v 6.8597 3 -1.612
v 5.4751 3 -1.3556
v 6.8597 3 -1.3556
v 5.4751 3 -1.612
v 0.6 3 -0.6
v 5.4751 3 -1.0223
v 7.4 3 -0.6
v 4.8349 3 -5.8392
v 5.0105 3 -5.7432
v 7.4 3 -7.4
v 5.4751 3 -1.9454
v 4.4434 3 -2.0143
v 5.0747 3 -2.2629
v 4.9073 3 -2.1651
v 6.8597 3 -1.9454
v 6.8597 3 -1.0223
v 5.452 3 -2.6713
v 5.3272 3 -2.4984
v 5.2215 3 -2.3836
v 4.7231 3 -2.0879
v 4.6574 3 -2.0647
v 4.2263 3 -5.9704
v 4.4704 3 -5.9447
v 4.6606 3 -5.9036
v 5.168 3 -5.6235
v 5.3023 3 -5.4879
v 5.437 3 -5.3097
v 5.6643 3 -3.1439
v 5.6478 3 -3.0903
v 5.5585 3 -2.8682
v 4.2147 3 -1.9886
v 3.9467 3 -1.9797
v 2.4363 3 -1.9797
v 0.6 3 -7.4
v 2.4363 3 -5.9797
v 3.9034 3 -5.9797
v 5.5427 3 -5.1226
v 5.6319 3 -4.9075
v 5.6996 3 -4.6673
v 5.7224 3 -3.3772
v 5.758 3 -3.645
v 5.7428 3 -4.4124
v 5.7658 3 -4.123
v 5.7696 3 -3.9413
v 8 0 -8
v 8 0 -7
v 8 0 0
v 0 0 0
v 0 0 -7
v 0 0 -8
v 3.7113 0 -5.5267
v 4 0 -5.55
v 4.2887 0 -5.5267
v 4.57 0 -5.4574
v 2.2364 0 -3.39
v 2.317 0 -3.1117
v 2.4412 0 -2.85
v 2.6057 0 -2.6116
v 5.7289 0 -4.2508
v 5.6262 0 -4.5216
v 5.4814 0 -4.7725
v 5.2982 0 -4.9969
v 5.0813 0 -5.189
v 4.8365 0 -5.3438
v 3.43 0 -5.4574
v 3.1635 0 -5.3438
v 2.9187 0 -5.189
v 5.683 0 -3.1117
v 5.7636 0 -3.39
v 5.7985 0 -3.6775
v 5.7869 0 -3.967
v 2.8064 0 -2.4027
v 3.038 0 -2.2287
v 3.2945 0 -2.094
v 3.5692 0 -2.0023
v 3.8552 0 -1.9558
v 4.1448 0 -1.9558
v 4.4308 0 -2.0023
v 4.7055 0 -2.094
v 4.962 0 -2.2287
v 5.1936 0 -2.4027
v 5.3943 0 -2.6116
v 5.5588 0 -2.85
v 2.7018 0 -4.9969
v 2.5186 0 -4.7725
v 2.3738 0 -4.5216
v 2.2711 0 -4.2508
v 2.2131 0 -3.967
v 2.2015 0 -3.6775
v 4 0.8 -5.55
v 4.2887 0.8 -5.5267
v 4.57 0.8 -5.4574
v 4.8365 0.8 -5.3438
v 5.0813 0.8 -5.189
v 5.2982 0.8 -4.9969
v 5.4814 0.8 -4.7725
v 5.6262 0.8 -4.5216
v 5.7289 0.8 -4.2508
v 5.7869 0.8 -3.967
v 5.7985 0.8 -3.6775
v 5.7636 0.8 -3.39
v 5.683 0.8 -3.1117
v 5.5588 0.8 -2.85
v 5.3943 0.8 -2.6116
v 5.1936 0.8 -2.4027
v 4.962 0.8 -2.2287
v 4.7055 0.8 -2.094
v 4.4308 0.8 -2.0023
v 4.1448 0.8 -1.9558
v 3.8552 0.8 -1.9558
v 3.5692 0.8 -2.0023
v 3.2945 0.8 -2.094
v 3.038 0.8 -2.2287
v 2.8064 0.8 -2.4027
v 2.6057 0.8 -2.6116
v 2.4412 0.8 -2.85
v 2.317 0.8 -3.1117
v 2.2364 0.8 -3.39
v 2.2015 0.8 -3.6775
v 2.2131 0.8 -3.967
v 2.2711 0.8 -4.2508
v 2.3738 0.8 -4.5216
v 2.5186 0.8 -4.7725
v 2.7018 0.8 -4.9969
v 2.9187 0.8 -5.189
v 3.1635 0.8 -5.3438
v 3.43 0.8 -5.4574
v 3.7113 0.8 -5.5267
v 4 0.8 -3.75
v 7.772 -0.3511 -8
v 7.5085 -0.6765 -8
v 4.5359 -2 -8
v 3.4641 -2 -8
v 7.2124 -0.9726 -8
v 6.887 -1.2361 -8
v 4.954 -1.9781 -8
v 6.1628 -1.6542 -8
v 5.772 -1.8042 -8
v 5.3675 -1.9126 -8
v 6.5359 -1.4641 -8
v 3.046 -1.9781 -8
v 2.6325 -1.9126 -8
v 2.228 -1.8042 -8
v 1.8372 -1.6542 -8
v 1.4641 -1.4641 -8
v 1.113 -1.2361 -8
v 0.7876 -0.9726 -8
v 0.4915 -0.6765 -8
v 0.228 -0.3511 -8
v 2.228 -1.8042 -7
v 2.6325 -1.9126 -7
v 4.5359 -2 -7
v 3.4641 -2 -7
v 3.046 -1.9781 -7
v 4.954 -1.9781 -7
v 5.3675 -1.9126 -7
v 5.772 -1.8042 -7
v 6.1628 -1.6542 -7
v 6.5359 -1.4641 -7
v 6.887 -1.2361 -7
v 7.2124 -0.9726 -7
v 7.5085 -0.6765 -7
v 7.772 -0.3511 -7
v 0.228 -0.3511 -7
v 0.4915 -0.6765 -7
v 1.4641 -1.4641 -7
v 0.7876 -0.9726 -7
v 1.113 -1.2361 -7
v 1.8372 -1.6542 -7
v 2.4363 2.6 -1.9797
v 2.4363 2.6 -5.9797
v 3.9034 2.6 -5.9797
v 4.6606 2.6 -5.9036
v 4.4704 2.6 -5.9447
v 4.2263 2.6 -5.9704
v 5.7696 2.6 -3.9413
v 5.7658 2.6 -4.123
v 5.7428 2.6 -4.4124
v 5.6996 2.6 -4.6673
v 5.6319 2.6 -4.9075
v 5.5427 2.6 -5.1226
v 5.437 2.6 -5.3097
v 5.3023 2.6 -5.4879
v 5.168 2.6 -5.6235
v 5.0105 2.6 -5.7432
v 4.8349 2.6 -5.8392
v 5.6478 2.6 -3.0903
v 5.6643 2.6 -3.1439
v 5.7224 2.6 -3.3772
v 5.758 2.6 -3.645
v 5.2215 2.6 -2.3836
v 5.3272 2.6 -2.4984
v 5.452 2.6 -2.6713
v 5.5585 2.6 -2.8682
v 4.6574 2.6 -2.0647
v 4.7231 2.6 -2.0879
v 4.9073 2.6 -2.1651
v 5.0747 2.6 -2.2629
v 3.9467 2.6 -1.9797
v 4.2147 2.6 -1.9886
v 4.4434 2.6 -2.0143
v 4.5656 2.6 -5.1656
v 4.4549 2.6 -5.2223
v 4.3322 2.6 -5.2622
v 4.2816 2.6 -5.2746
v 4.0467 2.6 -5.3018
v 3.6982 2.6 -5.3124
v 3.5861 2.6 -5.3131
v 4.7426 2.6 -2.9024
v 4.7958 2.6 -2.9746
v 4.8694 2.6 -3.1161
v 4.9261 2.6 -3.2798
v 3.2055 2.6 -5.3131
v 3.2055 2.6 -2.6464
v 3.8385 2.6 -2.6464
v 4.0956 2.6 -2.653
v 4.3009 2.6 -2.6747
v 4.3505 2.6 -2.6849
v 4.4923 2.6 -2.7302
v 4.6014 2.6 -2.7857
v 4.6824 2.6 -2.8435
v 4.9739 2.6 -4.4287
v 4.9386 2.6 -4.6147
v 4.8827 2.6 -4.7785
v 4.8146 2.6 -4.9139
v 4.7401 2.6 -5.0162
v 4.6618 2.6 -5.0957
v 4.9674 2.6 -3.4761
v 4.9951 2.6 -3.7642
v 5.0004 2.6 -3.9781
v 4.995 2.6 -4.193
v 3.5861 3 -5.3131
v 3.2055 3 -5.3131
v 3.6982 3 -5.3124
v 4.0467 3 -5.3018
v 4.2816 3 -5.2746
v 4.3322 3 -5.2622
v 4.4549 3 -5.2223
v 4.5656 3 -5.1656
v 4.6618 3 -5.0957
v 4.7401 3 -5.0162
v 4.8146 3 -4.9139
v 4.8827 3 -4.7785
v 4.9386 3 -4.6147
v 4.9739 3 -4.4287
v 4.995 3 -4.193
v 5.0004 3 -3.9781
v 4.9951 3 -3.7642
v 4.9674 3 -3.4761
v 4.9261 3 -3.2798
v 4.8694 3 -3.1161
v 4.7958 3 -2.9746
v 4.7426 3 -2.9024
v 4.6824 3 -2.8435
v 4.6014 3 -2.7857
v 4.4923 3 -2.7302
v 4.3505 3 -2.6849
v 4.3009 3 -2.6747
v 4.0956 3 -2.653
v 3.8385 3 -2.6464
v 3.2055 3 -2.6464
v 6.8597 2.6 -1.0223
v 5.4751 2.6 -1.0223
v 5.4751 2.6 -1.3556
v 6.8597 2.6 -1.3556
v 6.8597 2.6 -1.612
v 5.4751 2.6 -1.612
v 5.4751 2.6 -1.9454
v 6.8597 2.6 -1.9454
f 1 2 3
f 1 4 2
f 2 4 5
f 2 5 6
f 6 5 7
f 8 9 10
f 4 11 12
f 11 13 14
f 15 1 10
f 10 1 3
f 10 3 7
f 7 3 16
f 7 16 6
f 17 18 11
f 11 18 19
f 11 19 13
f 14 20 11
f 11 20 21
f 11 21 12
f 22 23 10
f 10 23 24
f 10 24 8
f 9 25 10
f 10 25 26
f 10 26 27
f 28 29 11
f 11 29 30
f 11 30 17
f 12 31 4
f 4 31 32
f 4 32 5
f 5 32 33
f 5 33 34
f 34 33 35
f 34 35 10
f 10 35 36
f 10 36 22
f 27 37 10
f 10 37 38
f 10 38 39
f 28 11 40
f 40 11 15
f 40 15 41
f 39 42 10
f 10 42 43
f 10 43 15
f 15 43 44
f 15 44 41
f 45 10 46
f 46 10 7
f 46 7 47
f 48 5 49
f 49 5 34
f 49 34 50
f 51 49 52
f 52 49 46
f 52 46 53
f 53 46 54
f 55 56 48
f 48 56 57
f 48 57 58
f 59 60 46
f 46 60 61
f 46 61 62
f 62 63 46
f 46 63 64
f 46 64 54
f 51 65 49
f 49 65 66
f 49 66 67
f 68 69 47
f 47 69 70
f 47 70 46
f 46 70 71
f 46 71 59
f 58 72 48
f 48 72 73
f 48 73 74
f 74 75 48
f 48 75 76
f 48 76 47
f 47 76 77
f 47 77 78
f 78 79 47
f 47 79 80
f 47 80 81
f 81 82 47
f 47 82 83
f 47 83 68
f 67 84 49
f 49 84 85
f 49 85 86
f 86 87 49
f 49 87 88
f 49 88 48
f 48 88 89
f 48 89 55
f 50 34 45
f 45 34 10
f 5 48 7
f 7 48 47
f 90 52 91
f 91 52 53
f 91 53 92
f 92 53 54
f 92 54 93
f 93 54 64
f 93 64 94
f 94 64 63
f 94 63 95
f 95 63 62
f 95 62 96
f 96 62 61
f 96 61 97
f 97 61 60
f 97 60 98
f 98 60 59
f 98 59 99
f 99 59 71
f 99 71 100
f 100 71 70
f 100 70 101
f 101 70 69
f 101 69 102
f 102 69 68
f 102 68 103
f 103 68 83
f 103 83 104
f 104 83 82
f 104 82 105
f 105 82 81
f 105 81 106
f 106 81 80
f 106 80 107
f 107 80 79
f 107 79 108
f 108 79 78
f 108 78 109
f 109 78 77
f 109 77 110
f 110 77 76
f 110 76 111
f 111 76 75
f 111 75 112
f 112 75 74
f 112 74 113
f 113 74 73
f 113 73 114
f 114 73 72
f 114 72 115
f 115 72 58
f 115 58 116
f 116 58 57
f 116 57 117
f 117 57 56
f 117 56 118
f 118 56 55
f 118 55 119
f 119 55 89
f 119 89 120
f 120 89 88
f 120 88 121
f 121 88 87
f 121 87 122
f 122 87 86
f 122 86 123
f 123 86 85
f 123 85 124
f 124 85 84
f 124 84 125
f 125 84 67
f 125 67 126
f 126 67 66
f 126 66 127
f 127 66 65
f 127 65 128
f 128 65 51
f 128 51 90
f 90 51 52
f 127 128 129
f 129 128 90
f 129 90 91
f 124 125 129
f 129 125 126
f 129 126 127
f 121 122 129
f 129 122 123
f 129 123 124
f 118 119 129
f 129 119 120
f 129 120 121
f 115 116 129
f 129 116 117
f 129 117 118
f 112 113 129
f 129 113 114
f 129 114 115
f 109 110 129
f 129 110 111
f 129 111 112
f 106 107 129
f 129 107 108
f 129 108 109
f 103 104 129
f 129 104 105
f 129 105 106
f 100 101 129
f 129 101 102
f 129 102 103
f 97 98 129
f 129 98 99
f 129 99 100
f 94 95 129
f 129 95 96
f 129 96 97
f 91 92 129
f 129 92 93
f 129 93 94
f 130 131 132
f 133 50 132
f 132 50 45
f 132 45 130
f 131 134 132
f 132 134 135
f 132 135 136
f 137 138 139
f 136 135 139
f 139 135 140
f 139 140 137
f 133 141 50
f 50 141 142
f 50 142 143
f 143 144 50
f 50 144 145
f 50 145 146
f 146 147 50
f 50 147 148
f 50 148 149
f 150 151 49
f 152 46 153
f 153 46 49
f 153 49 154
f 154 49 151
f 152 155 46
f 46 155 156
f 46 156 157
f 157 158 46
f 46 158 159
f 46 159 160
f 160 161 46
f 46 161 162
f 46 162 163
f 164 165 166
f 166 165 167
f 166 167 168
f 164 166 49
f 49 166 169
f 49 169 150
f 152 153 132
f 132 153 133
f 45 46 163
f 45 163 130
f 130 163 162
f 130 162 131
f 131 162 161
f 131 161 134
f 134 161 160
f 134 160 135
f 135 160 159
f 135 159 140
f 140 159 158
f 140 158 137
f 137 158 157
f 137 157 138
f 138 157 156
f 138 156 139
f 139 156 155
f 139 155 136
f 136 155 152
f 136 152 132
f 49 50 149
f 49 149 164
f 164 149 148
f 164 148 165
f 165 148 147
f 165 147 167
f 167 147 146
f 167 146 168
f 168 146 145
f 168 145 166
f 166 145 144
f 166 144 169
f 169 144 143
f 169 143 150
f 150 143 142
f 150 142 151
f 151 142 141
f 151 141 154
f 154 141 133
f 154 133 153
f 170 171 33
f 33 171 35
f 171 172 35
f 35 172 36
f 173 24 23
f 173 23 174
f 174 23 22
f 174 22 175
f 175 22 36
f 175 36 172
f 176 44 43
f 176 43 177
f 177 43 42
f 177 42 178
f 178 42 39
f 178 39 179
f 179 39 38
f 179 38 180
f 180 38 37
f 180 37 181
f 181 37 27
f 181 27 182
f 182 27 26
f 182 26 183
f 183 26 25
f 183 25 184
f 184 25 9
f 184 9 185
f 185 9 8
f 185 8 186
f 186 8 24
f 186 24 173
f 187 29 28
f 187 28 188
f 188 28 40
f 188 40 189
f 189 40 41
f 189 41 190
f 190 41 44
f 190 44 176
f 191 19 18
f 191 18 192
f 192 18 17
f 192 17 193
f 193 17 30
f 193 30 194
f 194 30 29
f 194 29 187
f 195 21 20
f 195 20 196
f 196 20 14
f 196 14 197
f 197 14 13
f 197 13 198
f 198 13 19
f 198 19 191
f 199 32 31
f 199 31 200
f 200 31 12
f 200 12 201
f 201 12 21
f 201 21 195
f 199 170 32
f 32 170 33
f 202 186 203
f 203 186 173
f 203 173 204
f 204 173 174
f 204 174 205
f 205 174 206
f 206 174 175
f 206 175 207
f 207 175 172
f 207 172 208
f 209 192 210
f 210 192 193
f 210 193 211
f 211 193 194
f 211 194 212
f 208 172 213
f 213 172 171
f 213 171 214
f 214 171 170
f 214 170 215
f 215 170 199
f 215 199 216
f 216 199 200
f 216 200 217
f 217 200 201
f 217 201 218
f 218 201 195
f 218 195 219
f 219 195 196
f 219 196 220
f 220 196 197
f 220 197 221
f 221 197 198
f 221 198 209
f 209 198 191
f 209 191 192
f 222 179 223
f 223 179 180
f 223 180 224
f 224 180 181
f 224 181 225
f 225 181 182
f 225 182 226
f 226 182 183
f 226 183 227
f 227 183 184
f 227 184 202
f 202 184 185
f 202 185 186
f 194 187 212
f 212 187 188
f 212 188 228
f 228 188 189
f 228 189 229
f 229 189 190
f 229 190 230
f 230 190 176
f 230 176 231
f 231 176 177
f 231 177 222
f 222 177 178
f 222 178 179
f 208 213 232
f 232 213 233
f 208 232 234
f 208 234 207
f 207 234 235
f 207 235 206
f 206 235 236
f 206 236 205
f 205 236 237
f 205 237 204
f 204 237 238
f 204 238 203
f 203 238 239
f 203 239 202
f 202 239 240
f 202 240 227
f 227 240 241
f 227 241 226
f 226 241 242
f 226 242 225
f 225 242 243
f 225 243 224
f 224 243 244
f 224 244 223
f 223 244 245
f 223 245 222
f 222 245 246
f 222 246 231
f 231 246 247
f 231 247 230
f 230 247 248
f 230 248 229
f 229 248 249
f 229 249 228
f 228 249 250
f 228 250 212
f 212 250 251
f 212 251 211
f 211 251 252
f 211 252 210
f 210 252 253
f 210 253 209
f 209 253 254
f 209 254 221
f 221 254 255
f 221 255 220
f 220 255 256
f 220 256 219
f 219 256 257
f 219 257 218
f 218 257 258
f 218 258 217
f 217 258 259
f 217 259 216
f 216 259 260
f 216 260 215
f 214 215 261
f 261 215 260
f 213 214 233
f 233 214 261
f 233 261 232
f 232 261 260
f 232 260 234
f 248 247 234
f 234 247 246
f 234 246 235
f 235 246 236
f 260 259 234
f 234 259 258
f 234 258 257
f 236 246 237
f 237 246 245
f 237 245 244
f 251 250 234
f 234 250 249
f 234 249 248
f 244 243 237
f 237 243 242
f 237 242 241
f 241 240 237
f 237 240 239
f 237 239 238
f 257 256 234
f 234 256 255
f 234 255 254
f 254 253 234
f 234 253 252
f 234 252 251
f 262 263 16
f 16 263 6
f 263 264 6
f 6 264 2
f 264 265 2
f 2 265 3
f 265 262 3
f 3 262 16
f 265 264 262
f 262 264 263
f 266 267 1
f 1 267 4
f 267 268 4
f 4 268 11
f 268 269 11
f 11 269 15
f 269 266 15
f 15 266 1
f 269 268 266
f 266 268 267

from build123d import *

# Parameters (mm, degrees)
SKETCH1_W               = 8
SKETCH1_H               = 8
BOSS_EXTRUDE1_DEPTH     = 3
CUT_EXTRUDE1_DEPTH      = 12.704699911
CUT_EXTRUDE1_DEPTH_BACK = 12.704699911
CUT_EXTRUDE2_DEPTH      = 11
SKETCH4_R               = 1.8
CUT_EXTRUDE3_DEPTH      = 0.8
SKETCH5_W               = 8
SKETCH5_H               = 1
BOSS_EXTRUDE2_DEPTH     = 2
FILLET1_R               = 4
CUT_EXTRUDE4_DEPTH      = 0.4
SKETCH7_W               = 1.384615385
SKETCH7_H               = 0.333333334
CUT_EXTRUDE5_DEPTH      = 0.4


with BuildPart() as part:
    # Sketch1 → Boss-Extrude1 (new body)
    with BuildSketch(Plane(origin=(0, 0, 0), x_dir=(1, 0, 0), z_dir=(0, 1, 0))):
        with Locations((4, 4)):
            Rectangle(SKETCH1_W, SKETCH1_H)
    extrude(amount=BOSS_EXTRUDE1_DEPTH)

    # Sketch2 → Cut-Extrude1 (cut, two sides: drawn at the far end of the back side and taken through both)
    with BuildSketch(Plane.XY.offset(-CUT_EXTRUDE1_DEPTH_BACK)):
        Polygon((0, 0), (0.6, 3), (0, 3), align=None)
        Polygon((8, 0), (7.4, 3), (8, 3), align=None)
    extrude(amount=CUT_EXTRUDE1_DEPTH + CUT_EXTRUDE1_DEPTH_BACK, mode=Mode.SUBTRACT)

    # Sketch3 → Cut-Extrude2 (cut)
    with BuildSketch(Plane(origin=(0, 0, 0), x_dir=(0, 0, -1), z_dir=(1, 0, 0))):
        Polygon((0, 0), (0.6, 3), (0, 3), align=None)
        Polygon((8, 3), (7.4, 3), (8, 0), align=None)
    extrude(amount=CUT_EXTRUDE2_DEPTH, mode=Mode.SUBTRACT)

    # Sketch4 → Cut-Extrude3 (cut)
    with BuildSketch(Plane.XZ):
        with Locations(Location((4, -3.75, 0), (0, 0, 270))):
            Circle(SKETCH4_R)
    extrude(amount=-CUT_EXTRUDE3_DEPTH, mode=Mode.SUBTRACT)

    # Sketch5 → Boss-Extrude2 (add)
    with BuildSketch(Plane.XZ):
        with Locations((4, -7.5)):
            Rectangle(SKETCH5_W, SKETCH5_H)
    extrude(amount=BOSS_EXTRUDE2_DEPTH)

    # Fillet1
    # the kernel refuses this fillet: 4 mm, written as the material it takes off along each edge
    with BuildSketch(Plane(origin=(8, -2, -16.660254038), x_dir=(0, 1, 0), z_dir=(0, 0, 1)), Plane(origin=(0, -2, 1.660254038), x_dir=(0, 1, 0), z_dir=(0, 0, -1))) as fillet1_piece_1:
        with BuildLine():
            CenterArc((4, 3.464101615), FILLET1_R, 180, 60)
            Line((0, 3.464101615), (-0.08, 3.464101615))
            Line((-0.08, 3.464101615), (-0.08, 0))
            Line((-0.08, 0), (0, -0.08))
            ThreePointArc((0, -0.08), (1, -0.08), (1.96, -0.069282032))
            Line((1.96, -0.069282032), (2, 0))
        make_face()
    extrude(amount=18.320508076, mode=Mode.SUBTRACT)

    # Sketch6 → Cut-Extrude4 (cut)
    with BuildSketch(Plane(origin=(0, 3, 0), x_dir=(1, 0, 0), z_dir=(0, 1, 0))):
        with BuildLine():
            Line((2.436272881, 5.979723732), (3.903420317, 5.979723732))
            add(Edge.make_bspline(
                [(3.903420317, 5.979723732), (3.943490496, 5.979744505), (4.021516441, 5.979784954), (4.134752515, 5.975087302), (4.240642802, 5.970362082), (4.338883372, 5.960903224), (4.429815049, 5.950988663), (4.51360101, 5.938436084), (4.589711972, 5.922348579), (4.637707501, 5.909661658), (4.660631856, 5.903601937)],
                knots=[0, 0, 0, 0, 1.259756885, 2.453039283, 3.563158368, 4.591894114, 5.55549294, 6.43918076, 7.254497783, 8, 8, 8, 8], degree=3))
            add(Edge.make_bspline(
                [(4.660631856, 5.903601937), (4.689300162, 5.894258489), (4.74612039, 5.87573989), (4.829420592, 5.843292221), (4.908343197, 5.803050568), (4.985816138, 5.760749105), (5.058380803, 5.710732544), (5.129877456, 5.658697008), (5.195666079, 5.598419283), (5.281939397, 5.514177193), (5.380383811, 5.396825298), (5.483519335, 5.241163905), (5.570813292, 5.070304112), (5.630456537, 4.917219685), (5.670729972, 4.787084992), (5.697056277, 4.682749965), (5.719418871, 4.572846322), (5.737778631, 4.457346355), (5.752043635, 4.336250048), (5.762664083, 4.209589679), (5.767837312, 4.07725583), (5.769008616, 3.987205692), (5.769606215, 3.941262194)],
                knots=[0, 0, 0, 0, 0.745524535, 1.477620414, 2.207090574, 2.934465325, 3.657932502, 4.384347339, 5.118673636, 5.861150177, 7.365375624, 8.894729774, 10.468936425, 12.099947606, 12.950091786, 13.83580991, 14.759228729, 15.722225242, 16.726454549, 17.773376212, 18.863978586, 20, 20, 20, 20], degree=3))
            add(Edge.make_bspline(
                [(5.769606215, 3.941262194), (5.768515323, 3.861857727), (5.766405561, 3.708291084), (5.741963835, 3.486695058), (5.70674022, 3.280872561), (5.667035899, 3.152471539), (5.647811343, 3.090300655)],
                knots=[0, 0, 0, 0, 1.103207939, 2.133582005, 3.096293362, 4, 4, 4, 4], degree=3))
            add(Edge.make_bspline(
                [(5.647811343, 3.090300655), (5.635116766, 3.054625647), (5.610144552, 2.98444734), (5.566445051, 2.883214788), (5.519227431, 2.786877042), (5.468100041, 2.695510004), (5.412804571, 2.609524646), (5.353134197, 2.529178156), (5.290013855, 2.453412746), (5.244286819, 2.406778778), (5.221529292, 2.383569886)],
                knots=[0, 0, 0, 0, 1.090884612, 2.145940218, 3.175104604, 4.181306866, 5.161203701, 6.118658341, 7.063689906, 8, 8, 8, 8], degree=3))
            add(Edge.make_bspline(
                [(5.221529292, 2.383569886), (5.184702113, 2.350450915), (5.108759222, 2.282154876), (4.974934842, 2.197635799), (4.823675662, 2.122952418), (4.714264019, 2.084588805), (4.657426727, 2.06465963)],
                knots=[0, 0, 0, 0, 0.908140292, 1.872714733, 2.8949153, 4, 4, 4, 4], degree=3))
            add(Edge.make_bspline(
                [(4.657426727, 2.06465963), (4.634546833, 2.057632533), (4.587060796, 2.043048157), (4.511767003, 2.027471741), (4.431388989, 2.011061834), (4.344999886, 2.001176252), (4.253496453, 1.990751469), (4.156149493, 1.984898536), (4.053296456, 1.980743294), (3.98275208, 1.980068625), (3.946689548, 1.979723732)],
                knots=[0, 0, 0, 0, 0.799129865, 1.658552685, 2.566799617, 3.538529252, 4.561352959, 5.643373779, 6.795284424, 8, 8, 8, 8], degree=3))
            Line((3.946689548, 1.979723732), (2.436272881, 1.979723732))
            Line((2.436272881, 1.979723732), (2.436272881, 5.979723732))
        make_face()
        with BuildLine():
            Line((3.205503651, 5.313057065), (3.205503651, 2.646390399))
            Line((3.205503651, 2.646390399), (3.838516471, 2.646390399))
            add(Edge.make_bspline(
                [(3.838516471, 2.646390399), (3.86709534, 2.646617049), (3.922120581, 2.647053436), (4.001743514, 2.648335709), (4.07491632, 2.651807064), (4.142022322, 2.655402822), (4.202886818, 2.661343643), (4.257774639, 2.667186667), (4.306380252, 2.675360935), (4.336400272, 2.681813595), (4.350535702, 2.684851937)],
                knots=[0, 0, 0, 0, 1.333384787, 2.567275092, 3.714769766, 4.750907381, 5.701951617, 6.567520054, 7.325492842, 8, 8, 8, 8], degree=3))
            add(Edge.make_bspline(
                [(4.350535702, 2.684851937), (4.38364248, 2.693686468), (4.44812575, 2.710893803), (4.538666782, 2.749253907), (4.62059475, 2.795531175), (4.695281698, 2.8511776), (4.762590099, 2.92150181), (4.820046047, 3.011440962), (4.873220012, 3.118706088), (4.909633556, 3.221385639), (4.935771128, 3.313096613), (4.95346412, 3.390071897), (4.967446413, 3.47335137), (4.979473009, 3.562606359), (4.989190784, 3.657722085), (4.995237644, 3.759042029), (4.999364663, 3.866442163), (5.000032135, 3.940189623), (5.000375445, 3.978121168)],
                knots=[0, 0, 0, 0, 1.038686998, 2.023088296, 2.974059649, 3.888265163, 4.839857954, 5.909819677, 7.113156087, 8.466843969, 9.20827164, 10.006482943, 10.861893492, 11.769681931, 12.739021491, 13.762258324, 14.849031541, 16, 16, 16, 16], degree=3))
            add(Edge.make_bspline(
                [(5.000375445, 3.978121168), (5.000034775, 4.01605283), (4.999374834, 4.089533605), (4.995254144, 4.196132914), (4.989241251, 4.29585735), (4.979454269, 4.38883019), (4.967614104, 4.475179926), (4.953468032, 4.554979633), (4.935881696, 4.627705609), (4.909721893, 4.71410541), (4.870064977, 4.811221472), (4.816099655, 4.917402921), (4.749828382, 5.00790436), (4.676605078, 5.08652444), (4.592177372, 5.151224792), (4.498716105, 5.205415106), (4.394186359, 5.247475499), (4.319831067, 5.2653904), (4.281625445, 5.274595527)],
                knots=[0, 0, 0, 0, 1.117996097, 2.165769068, 3.143980016, 4.062055362, 4.920439205, 5.712587309, 6.449616741, 7.124491204, 8.371470382, 9.537068822, 10.625202851, 11.666538334, 12.693249444, 13.747832046, 14.842779399, 16, 16, 16, 16], degree=3))
            add(Edge.make_bspline(
                [(4.281625445, 5.274595527), (4.265088191, 5.27766838), (4.228679487, 5.284433627), (4.168262747, 5.292335475), (4.097380449, 5.298199321), (4.015671249, 5.304185793), (3.923465993, 5.307602683), (3.820378875, 5.311168762), (3.706841263, 5.312386928), (3.627511913, 5.312827267), (3.586112625, 5.313057065)],
                knots=[0, 0, 0, 0, 0.578738571, 1.274160813, 2.095454135, 3.025967819, 4.093109015, 5.270126069, 6.575371698, 8, 8, 8, 8], degree=3))
            Line((3.586112625, 5.313057065), (3.205503651, 5.313057065))
        make_face(mode=Mode.SUBTRACT)
    extrude(amount=-CUT_EXTRUDE4_DEPTH, mode=Mode.SUBTRACT)

    # Sketch7 → Cut-Extrude5 (cut)
    with BuildSketch(Plane(origin=(0, 3, 0), x_dir=(1, 0, 0), z_dir=(0, 1, 0))):
        with Locations((6.167407218, 1.778686134)):
            Rectangle(SKETCH7_W, SKETCH7_H)
        with Locations((6.167407218, 1.188942544)):
            Rectangle(SKETCH7_W, SKETCH7_H)
    extrude(amount=-CUT_EXTRUDE5_DEPTH, mode=Mode.SUBTRACT)


solid = part.part
